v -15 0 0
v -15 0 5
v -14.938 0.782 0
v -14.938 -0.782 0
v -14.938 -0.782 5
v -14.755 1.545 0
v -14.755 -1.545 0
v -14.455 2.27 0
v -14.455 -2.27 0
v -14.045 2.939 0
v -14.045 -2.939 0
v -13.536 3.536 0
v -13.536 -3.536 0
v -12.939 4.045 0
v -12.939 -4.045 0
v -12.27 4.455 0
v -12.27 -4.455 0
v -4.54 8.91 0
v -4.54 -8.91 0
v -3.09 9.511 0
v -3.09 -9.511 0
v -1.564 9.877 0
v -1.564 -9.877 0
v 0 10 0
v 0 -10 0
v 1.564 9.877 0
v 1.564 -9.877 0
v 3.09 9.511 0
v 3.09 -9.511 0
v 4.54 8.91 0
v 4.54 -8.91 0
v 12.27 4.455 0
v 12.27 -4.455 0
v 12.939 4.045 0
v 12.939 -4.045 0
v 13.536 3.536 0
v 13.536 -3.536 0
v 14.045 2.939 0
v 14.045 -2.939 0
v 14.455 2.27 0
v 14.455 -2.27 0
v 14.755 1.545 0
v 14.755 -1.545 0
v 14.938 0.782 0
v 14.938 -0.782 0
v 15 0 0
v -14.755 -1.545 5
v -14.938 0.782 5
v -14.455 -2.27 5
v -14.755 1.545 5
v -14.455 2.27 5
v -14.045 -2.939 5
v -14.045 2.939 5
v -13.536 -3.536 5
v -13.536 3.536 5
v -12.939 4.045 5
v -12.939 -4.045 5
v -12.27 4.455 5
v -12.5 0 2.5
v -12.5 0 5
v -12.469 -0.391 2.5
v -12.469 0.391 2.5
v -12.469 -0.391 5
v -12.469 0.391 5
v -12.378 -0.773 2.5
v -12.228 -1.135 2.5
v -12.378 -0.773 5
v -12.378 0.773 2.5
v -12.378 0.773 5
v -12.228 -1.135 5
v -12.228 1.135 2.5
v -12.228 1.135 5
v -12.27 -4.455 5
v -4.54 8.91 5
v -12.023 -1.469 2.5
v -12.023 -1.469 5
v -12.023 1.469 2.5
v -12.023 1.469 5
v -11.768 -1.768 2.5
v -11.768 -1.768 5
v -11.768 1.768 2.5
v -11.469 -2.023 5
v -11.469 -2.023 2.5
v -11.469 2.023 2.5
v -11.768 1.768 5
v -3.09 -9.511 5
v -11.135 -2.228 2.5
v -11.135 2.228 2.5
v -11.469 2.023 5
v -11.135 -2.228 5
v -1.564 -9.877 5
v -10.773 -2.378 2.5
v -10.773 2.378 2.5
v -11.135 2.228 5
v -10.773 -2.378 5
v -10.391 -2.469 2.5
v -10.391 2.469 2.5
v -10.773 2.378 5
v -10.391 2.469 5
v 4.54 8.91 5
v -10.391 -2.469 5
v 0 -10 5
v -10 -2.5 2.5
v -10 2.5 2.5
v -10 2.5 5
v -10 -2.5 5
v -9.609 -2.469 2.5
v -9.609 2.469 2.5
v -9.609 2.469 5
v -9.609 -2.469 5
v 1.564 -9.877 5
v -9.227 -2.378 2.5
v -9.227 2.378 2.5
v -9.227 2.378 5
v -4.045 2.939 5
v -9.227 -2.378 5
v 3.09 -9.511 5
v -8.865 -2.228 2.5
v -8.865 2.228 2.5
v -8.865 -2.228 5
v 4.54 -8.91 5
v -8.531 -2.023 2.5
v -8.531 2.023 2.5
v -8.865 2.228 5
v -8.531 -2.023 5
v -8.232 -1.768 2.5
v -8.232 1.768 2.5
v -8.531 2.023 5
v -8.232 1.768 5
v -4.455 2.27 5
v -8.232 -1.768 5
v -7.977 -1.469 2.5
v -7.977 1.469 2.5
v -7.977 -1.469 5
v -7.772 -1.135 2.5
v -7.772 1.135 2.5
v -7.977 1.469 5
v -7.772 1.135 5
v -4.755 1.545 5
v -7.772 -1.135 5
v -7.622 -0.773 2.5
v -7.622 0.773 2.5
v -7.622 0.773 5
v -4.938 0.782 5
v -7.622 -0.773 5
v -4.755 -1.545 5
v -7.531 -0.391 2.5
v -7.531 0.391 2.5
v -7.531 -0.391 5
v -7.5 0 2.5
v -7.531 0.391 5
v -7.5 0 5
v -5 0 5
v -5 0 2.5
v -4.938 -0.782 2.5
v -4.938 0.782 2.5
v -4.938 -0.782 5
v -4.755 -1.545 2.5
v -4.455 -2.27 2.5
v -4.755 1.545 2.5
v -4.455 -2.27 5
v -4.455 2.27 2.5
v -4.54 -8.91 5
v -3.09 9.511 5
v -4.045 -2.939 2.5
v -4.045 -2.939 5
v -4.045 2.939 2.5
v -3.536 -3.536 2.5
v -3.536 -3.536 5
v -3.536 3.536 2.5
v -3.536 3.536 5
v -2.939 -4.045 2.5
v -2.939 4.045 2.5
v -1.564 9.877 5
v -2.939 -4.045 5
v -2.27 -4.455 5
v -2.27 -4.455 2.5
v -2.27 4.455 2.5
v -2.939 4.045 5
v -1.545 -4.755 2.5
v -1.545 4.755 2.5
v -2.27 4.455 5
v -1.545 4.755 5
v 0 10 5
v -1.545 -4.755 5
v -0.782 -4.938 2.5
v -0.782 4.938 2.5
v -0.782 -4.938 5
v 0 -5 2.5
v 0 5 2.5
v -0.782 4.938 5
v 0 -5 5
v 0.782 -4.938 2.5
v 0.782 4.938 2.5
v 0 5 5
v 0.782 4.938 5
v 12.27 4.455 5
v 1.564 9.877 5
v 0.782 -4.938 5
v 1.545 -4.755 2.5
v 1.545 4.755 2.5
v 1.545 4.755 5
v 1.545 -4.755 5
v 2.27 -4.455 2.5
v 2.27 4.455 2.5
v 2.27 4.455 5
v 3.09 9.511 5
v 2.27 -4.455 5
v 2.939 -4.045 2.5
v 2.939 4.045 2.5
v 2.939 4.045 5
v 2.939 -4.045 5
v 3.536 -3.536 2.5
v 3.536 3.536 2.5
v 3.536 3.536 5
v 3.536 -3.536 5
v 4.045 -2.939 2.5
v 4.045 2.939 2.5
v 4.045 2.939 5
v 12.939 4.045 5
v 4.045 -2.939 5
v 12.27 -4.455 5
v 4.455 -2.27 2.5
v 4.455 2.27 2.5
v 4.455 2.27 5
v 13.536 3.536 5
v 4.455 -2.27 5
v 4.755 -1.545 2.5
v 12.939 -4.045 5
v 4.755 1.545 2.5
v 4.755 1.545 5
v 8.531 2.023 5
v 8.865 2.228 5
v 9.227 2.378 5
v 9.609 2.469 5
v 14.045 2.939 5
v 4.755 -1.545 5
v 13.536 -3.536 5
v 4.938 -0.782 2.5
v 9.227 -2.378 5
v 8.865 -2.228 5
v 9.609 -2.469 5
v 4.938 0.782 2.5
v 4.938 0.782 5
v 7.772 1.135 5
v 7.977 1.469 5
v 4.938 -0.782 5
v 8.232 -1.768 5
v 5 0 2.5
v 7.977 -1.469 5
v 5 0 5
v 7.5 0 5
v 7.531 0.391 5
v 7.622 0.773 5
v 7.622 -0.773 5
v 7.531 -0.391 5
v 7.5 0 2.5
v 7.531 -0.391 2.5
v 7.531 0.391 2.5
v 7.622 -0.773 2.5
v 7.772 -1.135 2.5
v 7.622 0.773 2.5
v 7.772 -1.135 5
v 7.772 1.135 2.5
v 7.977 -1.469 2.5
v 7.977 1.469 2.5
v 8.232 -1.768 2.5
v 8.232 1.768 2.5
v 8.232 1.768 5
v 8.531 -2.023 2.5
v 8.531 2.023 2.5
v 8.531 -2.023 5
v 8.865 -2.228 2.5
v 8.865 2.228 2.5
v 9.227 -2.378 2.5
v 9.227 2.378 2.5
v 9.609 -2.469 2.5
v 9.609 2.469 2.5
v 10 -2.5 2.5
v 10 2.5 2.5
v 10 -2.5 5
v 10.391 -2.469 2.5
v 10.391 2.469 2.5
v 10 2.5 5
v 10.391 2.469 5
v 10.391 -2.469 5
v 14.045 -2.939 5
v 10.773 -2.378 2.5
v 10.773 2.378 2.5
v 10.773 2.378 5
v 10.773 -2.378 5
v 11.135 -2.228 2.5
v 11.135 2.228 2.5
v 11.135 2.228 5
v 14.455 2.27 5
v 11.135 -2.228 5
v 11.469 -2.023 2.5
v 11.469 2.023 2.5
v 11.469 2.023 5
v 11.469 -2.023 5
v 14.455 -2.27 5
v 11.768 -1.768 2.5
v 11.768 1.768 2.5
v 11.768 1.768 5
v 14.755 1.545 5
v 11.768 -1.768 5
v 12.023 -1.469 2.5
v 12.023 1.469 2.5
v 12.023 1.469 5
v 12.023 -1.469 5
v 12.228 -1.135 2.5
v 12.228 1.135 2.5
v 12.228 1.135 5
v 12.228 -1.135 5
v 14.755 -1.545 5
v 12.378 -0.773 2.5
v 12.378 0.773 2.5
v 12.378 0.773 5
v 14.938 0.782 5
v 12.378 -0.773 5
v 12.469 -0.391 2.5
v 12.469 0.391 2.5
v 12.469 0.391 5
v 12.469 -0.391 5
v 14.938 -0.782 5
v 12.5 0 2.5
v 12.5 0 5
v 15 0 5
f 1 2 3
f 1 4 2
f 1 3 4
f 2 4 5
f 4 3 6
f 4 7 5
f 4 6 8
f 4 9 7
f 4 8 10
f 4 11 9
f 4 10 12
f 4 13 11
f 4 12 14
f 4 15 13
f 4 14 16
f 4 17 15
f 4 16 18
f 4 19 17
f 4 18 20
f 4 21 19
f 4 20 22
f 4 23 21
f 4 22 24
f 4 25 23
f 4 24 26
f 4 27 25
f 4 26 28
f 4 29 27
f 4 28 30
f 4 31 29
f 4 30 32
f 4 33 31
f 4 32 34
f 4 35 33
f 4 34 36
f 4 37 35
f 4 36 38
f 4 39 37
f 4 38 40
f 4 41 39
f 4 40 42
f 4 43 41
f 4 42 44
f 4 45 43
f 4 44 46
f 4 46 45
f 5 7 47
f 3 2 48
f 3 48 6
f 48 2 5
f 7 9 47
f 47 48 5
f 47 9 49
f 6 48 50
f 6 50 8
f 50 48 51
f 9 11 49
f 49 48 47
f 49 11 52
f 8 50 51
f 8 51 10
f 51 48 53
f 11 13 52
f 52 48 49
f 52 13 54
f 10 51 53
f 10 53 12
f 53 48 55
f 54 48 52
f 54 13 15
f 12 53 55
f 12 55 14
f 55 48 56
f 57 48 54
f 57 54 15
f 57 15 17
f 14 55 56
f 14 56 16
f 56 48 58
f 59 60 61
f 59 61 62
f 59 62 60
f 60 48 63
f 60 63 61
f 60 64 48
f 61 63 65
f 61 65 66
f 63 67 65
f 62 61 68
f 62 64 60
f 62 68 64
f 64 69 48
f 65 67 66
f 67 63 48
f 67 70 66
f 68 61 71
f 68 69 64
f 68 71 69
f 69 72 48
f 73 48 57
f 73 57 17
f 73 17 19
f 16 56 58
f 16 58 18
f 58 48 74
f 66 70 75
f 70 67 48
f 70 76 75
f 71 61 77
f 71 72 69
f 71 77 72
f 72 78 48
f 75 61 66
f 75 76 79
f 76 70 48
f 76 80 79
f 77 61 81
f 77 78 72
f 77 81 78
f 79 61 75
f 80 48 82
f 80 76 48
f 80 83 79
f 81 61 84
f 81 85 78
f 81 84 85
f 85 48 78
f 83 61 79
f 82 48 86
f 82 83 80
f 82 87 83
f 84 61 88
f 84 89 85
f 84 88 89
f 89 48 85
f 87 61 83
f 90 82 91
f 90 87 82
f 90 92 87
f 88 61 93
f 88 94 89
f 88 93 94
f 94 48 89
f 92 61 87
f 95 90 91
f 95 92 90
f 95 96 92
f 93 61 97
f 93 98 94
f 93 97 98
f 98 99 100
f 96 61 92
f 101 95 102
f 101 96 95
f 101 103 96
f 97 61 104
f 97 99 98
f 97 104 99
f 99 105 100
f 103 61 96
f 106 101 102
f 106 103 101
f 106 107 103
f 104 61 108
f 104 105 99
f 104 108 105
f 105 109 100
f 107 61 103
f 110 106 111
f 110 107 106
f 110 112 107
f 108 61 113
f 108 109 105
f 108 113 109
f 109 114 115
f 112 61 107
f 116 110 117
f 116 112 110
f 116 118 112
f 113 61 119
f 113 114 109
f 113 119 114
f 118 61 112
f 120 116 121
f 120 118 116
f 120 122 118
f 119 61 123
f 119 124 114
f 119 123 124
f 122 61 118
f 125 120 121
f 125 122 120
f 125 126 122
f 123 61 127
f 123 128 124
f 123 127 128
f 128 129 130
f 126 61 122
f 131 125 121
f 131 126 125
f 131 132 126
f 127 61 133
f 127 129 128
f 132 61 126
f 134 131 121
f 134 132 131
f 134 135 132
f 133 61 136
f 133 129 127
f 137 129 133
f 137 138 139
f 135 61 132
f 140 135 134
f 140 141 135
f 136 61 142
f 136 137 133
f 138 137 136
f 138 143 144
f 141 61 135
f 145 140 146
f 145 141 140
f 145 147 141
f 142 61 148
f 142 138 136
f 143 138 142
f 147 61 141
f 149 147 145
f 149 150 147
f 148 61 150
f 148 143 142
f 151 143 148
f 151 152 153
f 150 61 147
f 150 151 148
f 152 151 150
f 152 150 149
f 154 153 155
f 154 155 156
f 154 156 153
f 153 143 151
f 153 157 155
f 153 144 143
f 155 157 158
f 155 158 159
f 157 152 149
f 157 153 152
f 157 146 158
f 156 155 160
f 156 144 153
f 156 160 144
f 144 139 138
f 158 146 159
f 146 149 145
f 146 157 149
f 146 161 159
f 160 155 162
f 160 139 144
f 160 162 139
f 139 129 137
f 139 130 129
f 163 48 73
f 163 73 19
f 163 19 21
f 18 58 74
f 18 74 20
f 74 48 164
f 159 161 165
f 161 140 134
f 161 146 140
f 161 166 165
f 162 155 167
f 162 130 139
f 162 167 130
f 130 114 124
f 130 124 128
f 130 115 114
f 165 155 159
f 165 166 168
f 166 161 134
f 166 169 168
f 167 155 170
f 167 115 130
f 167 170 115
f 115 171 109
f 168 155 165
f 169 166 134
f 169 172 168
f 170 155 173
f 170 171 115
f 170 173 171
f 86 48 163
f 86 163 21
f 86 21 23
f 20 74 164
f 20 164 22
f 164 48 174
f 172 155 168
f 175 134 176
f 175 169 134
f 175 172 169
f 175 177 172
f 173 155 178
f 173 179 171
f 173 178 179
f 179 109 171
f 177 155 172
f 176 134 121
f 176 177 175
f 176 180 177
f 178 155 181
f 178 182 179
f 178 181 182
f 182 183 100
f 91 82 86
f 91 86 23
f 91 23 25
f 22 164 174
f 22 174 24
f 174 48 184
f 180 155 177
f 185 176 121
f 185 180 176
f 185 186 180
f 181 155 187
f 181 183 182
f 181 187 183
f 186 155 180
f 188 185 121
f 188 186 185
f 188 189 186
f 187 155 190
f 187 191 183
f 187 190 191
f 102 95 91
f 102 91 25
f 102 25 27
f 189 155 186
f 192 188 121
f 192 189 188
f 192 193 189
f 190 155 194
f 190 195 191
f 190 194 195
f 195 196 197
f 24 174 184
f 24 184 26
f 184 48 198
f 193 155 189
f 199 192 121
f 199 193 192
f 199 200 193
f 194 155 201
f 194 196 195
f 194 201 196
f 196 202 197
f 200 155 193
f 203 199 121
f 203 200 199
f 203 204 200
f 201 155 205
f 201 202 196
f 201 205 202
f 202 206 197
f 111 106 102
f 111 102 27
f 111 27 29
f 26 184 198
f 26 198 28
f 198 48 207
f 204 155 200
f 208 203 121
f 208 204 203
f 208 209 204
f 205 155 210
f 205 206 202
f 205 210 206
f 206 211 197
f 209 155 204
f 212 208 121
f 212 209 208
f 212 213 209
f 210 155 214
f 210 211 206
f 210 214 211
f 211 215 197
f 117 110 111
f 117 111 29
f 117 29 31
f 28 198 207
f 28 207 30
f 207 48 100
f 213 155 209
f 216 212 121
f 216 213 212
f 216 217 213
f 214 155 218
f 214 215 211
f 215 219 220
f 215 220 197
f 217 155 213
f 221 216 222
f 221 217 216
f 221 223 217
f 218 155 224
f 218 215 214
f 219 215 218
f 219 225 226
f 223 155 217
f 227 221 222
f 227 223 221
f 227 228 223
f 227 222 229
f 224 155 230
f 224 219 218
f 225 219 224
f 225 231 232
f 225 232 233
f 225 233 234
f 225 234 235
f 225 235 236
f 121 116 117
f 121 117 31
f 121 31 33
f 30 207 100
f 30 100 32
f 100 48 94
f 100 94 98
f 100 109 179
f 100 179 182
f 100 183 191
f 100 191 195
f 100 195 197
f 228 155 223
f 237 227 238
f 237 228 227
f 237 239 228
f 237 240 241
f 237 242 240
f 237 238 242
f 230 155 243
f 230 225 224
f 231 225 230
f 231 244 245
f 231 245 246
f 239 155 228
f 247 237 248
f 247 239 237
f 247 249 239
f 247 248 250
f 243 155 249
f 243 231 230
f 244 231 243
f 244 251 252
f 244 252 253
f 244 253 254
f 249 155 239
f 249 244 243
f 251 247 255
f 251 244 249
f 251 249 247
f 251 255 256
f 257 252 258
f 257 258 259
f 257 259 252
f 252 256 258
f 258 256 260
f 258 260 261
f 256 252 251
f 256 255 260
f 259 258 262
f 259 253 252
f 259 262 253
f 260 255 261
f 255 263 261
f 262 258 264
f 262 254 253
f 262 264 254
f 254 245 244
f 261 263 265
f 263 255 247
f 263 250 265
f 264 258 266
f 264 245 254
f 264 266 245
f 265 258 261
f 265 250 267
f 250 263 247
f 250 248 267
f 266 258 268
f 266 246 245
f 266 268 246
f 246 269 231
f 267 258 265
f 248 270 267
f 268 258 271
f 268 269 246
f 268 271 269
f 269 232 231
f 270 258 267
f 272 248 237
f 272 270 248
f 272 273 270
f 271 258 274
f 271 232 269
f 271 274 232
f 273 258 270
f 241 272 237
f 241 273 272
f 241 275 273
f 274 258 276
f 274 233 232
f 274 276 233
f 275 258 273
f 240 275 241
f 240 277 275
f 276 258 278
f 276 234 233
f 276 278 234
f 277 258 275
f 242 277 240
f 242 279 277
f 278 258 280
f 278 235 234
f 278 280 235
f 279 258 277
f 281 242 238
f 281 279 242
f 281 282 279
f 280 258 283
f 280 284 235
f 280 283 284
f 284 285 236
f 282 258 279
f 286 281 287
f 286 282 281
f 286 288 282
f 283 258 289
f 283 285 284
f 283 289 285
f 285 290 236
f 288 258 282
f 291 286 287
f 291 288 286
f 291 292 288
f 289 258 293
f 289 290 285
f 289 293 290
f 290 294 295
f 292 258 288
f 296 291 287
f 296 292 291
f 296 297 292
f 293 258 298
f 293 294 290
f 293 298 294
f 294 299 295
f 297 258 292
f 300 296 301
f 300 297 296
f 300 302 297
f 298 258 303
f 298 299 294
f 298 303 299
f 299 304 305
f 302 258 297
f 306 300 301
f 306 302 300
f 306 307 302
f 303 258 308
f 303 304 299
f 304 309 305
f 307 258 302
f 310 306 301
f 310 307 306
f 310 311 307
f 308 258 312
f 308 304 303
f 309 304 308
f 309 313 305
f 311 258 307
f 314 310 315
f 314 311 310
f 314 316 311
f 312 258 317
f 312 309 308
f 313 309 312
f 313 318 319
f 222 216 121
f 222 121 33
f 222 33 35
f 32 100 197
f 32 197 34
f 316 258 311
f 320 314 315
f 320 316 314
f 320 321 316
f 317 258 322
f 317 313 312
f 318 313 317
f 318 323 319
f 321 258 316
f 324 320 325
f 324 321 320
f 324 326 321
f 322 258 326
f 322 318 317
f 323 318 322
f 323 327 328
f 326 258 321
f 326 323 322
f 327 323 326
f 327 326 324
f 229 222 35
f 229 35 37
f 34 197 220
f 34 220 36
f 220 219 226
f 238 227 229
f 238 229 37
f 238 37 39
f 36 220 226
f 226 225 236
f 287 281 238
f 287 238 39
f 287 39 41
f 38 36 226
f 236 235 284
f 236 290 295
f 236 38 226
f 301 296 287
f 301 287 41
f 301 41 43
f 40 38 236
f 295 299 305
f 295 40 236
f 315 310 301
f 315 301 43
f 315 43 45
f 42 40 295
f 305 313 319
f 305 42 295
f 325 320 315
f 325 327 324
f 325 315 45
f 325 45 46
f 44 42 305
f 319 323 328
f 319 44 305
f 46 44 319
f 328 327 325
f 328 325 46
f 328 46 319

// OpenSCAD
a = 10;//center_radius
b = 5;//side_radius
c = 10;//side_position
d = 5;//height
tool_height = 3;
$fn = 40;//number of polygon

module target(){
	linear_extrude(height = d){
		hull(){
			circle(r = a);
			translate([c,0,0])
				circle(r = b);
			translate([-c,0,0])
				circle(r = b);
		}
	}
}

module tool(){
	#translate([0,0,d/2])
		cylinder(h = tool_height, r1 = a/2, r2 = a/2);
	#translate([10,0,d/2])
		cylinder(h = tool_height, r1 = b/2, r2 = b/2);
	#translate([-10,0,d/2])
		cylinder(h = tool_height, r1 = b/2, r2 = b/2);
}

difference(){
	target();
	tool();
}
